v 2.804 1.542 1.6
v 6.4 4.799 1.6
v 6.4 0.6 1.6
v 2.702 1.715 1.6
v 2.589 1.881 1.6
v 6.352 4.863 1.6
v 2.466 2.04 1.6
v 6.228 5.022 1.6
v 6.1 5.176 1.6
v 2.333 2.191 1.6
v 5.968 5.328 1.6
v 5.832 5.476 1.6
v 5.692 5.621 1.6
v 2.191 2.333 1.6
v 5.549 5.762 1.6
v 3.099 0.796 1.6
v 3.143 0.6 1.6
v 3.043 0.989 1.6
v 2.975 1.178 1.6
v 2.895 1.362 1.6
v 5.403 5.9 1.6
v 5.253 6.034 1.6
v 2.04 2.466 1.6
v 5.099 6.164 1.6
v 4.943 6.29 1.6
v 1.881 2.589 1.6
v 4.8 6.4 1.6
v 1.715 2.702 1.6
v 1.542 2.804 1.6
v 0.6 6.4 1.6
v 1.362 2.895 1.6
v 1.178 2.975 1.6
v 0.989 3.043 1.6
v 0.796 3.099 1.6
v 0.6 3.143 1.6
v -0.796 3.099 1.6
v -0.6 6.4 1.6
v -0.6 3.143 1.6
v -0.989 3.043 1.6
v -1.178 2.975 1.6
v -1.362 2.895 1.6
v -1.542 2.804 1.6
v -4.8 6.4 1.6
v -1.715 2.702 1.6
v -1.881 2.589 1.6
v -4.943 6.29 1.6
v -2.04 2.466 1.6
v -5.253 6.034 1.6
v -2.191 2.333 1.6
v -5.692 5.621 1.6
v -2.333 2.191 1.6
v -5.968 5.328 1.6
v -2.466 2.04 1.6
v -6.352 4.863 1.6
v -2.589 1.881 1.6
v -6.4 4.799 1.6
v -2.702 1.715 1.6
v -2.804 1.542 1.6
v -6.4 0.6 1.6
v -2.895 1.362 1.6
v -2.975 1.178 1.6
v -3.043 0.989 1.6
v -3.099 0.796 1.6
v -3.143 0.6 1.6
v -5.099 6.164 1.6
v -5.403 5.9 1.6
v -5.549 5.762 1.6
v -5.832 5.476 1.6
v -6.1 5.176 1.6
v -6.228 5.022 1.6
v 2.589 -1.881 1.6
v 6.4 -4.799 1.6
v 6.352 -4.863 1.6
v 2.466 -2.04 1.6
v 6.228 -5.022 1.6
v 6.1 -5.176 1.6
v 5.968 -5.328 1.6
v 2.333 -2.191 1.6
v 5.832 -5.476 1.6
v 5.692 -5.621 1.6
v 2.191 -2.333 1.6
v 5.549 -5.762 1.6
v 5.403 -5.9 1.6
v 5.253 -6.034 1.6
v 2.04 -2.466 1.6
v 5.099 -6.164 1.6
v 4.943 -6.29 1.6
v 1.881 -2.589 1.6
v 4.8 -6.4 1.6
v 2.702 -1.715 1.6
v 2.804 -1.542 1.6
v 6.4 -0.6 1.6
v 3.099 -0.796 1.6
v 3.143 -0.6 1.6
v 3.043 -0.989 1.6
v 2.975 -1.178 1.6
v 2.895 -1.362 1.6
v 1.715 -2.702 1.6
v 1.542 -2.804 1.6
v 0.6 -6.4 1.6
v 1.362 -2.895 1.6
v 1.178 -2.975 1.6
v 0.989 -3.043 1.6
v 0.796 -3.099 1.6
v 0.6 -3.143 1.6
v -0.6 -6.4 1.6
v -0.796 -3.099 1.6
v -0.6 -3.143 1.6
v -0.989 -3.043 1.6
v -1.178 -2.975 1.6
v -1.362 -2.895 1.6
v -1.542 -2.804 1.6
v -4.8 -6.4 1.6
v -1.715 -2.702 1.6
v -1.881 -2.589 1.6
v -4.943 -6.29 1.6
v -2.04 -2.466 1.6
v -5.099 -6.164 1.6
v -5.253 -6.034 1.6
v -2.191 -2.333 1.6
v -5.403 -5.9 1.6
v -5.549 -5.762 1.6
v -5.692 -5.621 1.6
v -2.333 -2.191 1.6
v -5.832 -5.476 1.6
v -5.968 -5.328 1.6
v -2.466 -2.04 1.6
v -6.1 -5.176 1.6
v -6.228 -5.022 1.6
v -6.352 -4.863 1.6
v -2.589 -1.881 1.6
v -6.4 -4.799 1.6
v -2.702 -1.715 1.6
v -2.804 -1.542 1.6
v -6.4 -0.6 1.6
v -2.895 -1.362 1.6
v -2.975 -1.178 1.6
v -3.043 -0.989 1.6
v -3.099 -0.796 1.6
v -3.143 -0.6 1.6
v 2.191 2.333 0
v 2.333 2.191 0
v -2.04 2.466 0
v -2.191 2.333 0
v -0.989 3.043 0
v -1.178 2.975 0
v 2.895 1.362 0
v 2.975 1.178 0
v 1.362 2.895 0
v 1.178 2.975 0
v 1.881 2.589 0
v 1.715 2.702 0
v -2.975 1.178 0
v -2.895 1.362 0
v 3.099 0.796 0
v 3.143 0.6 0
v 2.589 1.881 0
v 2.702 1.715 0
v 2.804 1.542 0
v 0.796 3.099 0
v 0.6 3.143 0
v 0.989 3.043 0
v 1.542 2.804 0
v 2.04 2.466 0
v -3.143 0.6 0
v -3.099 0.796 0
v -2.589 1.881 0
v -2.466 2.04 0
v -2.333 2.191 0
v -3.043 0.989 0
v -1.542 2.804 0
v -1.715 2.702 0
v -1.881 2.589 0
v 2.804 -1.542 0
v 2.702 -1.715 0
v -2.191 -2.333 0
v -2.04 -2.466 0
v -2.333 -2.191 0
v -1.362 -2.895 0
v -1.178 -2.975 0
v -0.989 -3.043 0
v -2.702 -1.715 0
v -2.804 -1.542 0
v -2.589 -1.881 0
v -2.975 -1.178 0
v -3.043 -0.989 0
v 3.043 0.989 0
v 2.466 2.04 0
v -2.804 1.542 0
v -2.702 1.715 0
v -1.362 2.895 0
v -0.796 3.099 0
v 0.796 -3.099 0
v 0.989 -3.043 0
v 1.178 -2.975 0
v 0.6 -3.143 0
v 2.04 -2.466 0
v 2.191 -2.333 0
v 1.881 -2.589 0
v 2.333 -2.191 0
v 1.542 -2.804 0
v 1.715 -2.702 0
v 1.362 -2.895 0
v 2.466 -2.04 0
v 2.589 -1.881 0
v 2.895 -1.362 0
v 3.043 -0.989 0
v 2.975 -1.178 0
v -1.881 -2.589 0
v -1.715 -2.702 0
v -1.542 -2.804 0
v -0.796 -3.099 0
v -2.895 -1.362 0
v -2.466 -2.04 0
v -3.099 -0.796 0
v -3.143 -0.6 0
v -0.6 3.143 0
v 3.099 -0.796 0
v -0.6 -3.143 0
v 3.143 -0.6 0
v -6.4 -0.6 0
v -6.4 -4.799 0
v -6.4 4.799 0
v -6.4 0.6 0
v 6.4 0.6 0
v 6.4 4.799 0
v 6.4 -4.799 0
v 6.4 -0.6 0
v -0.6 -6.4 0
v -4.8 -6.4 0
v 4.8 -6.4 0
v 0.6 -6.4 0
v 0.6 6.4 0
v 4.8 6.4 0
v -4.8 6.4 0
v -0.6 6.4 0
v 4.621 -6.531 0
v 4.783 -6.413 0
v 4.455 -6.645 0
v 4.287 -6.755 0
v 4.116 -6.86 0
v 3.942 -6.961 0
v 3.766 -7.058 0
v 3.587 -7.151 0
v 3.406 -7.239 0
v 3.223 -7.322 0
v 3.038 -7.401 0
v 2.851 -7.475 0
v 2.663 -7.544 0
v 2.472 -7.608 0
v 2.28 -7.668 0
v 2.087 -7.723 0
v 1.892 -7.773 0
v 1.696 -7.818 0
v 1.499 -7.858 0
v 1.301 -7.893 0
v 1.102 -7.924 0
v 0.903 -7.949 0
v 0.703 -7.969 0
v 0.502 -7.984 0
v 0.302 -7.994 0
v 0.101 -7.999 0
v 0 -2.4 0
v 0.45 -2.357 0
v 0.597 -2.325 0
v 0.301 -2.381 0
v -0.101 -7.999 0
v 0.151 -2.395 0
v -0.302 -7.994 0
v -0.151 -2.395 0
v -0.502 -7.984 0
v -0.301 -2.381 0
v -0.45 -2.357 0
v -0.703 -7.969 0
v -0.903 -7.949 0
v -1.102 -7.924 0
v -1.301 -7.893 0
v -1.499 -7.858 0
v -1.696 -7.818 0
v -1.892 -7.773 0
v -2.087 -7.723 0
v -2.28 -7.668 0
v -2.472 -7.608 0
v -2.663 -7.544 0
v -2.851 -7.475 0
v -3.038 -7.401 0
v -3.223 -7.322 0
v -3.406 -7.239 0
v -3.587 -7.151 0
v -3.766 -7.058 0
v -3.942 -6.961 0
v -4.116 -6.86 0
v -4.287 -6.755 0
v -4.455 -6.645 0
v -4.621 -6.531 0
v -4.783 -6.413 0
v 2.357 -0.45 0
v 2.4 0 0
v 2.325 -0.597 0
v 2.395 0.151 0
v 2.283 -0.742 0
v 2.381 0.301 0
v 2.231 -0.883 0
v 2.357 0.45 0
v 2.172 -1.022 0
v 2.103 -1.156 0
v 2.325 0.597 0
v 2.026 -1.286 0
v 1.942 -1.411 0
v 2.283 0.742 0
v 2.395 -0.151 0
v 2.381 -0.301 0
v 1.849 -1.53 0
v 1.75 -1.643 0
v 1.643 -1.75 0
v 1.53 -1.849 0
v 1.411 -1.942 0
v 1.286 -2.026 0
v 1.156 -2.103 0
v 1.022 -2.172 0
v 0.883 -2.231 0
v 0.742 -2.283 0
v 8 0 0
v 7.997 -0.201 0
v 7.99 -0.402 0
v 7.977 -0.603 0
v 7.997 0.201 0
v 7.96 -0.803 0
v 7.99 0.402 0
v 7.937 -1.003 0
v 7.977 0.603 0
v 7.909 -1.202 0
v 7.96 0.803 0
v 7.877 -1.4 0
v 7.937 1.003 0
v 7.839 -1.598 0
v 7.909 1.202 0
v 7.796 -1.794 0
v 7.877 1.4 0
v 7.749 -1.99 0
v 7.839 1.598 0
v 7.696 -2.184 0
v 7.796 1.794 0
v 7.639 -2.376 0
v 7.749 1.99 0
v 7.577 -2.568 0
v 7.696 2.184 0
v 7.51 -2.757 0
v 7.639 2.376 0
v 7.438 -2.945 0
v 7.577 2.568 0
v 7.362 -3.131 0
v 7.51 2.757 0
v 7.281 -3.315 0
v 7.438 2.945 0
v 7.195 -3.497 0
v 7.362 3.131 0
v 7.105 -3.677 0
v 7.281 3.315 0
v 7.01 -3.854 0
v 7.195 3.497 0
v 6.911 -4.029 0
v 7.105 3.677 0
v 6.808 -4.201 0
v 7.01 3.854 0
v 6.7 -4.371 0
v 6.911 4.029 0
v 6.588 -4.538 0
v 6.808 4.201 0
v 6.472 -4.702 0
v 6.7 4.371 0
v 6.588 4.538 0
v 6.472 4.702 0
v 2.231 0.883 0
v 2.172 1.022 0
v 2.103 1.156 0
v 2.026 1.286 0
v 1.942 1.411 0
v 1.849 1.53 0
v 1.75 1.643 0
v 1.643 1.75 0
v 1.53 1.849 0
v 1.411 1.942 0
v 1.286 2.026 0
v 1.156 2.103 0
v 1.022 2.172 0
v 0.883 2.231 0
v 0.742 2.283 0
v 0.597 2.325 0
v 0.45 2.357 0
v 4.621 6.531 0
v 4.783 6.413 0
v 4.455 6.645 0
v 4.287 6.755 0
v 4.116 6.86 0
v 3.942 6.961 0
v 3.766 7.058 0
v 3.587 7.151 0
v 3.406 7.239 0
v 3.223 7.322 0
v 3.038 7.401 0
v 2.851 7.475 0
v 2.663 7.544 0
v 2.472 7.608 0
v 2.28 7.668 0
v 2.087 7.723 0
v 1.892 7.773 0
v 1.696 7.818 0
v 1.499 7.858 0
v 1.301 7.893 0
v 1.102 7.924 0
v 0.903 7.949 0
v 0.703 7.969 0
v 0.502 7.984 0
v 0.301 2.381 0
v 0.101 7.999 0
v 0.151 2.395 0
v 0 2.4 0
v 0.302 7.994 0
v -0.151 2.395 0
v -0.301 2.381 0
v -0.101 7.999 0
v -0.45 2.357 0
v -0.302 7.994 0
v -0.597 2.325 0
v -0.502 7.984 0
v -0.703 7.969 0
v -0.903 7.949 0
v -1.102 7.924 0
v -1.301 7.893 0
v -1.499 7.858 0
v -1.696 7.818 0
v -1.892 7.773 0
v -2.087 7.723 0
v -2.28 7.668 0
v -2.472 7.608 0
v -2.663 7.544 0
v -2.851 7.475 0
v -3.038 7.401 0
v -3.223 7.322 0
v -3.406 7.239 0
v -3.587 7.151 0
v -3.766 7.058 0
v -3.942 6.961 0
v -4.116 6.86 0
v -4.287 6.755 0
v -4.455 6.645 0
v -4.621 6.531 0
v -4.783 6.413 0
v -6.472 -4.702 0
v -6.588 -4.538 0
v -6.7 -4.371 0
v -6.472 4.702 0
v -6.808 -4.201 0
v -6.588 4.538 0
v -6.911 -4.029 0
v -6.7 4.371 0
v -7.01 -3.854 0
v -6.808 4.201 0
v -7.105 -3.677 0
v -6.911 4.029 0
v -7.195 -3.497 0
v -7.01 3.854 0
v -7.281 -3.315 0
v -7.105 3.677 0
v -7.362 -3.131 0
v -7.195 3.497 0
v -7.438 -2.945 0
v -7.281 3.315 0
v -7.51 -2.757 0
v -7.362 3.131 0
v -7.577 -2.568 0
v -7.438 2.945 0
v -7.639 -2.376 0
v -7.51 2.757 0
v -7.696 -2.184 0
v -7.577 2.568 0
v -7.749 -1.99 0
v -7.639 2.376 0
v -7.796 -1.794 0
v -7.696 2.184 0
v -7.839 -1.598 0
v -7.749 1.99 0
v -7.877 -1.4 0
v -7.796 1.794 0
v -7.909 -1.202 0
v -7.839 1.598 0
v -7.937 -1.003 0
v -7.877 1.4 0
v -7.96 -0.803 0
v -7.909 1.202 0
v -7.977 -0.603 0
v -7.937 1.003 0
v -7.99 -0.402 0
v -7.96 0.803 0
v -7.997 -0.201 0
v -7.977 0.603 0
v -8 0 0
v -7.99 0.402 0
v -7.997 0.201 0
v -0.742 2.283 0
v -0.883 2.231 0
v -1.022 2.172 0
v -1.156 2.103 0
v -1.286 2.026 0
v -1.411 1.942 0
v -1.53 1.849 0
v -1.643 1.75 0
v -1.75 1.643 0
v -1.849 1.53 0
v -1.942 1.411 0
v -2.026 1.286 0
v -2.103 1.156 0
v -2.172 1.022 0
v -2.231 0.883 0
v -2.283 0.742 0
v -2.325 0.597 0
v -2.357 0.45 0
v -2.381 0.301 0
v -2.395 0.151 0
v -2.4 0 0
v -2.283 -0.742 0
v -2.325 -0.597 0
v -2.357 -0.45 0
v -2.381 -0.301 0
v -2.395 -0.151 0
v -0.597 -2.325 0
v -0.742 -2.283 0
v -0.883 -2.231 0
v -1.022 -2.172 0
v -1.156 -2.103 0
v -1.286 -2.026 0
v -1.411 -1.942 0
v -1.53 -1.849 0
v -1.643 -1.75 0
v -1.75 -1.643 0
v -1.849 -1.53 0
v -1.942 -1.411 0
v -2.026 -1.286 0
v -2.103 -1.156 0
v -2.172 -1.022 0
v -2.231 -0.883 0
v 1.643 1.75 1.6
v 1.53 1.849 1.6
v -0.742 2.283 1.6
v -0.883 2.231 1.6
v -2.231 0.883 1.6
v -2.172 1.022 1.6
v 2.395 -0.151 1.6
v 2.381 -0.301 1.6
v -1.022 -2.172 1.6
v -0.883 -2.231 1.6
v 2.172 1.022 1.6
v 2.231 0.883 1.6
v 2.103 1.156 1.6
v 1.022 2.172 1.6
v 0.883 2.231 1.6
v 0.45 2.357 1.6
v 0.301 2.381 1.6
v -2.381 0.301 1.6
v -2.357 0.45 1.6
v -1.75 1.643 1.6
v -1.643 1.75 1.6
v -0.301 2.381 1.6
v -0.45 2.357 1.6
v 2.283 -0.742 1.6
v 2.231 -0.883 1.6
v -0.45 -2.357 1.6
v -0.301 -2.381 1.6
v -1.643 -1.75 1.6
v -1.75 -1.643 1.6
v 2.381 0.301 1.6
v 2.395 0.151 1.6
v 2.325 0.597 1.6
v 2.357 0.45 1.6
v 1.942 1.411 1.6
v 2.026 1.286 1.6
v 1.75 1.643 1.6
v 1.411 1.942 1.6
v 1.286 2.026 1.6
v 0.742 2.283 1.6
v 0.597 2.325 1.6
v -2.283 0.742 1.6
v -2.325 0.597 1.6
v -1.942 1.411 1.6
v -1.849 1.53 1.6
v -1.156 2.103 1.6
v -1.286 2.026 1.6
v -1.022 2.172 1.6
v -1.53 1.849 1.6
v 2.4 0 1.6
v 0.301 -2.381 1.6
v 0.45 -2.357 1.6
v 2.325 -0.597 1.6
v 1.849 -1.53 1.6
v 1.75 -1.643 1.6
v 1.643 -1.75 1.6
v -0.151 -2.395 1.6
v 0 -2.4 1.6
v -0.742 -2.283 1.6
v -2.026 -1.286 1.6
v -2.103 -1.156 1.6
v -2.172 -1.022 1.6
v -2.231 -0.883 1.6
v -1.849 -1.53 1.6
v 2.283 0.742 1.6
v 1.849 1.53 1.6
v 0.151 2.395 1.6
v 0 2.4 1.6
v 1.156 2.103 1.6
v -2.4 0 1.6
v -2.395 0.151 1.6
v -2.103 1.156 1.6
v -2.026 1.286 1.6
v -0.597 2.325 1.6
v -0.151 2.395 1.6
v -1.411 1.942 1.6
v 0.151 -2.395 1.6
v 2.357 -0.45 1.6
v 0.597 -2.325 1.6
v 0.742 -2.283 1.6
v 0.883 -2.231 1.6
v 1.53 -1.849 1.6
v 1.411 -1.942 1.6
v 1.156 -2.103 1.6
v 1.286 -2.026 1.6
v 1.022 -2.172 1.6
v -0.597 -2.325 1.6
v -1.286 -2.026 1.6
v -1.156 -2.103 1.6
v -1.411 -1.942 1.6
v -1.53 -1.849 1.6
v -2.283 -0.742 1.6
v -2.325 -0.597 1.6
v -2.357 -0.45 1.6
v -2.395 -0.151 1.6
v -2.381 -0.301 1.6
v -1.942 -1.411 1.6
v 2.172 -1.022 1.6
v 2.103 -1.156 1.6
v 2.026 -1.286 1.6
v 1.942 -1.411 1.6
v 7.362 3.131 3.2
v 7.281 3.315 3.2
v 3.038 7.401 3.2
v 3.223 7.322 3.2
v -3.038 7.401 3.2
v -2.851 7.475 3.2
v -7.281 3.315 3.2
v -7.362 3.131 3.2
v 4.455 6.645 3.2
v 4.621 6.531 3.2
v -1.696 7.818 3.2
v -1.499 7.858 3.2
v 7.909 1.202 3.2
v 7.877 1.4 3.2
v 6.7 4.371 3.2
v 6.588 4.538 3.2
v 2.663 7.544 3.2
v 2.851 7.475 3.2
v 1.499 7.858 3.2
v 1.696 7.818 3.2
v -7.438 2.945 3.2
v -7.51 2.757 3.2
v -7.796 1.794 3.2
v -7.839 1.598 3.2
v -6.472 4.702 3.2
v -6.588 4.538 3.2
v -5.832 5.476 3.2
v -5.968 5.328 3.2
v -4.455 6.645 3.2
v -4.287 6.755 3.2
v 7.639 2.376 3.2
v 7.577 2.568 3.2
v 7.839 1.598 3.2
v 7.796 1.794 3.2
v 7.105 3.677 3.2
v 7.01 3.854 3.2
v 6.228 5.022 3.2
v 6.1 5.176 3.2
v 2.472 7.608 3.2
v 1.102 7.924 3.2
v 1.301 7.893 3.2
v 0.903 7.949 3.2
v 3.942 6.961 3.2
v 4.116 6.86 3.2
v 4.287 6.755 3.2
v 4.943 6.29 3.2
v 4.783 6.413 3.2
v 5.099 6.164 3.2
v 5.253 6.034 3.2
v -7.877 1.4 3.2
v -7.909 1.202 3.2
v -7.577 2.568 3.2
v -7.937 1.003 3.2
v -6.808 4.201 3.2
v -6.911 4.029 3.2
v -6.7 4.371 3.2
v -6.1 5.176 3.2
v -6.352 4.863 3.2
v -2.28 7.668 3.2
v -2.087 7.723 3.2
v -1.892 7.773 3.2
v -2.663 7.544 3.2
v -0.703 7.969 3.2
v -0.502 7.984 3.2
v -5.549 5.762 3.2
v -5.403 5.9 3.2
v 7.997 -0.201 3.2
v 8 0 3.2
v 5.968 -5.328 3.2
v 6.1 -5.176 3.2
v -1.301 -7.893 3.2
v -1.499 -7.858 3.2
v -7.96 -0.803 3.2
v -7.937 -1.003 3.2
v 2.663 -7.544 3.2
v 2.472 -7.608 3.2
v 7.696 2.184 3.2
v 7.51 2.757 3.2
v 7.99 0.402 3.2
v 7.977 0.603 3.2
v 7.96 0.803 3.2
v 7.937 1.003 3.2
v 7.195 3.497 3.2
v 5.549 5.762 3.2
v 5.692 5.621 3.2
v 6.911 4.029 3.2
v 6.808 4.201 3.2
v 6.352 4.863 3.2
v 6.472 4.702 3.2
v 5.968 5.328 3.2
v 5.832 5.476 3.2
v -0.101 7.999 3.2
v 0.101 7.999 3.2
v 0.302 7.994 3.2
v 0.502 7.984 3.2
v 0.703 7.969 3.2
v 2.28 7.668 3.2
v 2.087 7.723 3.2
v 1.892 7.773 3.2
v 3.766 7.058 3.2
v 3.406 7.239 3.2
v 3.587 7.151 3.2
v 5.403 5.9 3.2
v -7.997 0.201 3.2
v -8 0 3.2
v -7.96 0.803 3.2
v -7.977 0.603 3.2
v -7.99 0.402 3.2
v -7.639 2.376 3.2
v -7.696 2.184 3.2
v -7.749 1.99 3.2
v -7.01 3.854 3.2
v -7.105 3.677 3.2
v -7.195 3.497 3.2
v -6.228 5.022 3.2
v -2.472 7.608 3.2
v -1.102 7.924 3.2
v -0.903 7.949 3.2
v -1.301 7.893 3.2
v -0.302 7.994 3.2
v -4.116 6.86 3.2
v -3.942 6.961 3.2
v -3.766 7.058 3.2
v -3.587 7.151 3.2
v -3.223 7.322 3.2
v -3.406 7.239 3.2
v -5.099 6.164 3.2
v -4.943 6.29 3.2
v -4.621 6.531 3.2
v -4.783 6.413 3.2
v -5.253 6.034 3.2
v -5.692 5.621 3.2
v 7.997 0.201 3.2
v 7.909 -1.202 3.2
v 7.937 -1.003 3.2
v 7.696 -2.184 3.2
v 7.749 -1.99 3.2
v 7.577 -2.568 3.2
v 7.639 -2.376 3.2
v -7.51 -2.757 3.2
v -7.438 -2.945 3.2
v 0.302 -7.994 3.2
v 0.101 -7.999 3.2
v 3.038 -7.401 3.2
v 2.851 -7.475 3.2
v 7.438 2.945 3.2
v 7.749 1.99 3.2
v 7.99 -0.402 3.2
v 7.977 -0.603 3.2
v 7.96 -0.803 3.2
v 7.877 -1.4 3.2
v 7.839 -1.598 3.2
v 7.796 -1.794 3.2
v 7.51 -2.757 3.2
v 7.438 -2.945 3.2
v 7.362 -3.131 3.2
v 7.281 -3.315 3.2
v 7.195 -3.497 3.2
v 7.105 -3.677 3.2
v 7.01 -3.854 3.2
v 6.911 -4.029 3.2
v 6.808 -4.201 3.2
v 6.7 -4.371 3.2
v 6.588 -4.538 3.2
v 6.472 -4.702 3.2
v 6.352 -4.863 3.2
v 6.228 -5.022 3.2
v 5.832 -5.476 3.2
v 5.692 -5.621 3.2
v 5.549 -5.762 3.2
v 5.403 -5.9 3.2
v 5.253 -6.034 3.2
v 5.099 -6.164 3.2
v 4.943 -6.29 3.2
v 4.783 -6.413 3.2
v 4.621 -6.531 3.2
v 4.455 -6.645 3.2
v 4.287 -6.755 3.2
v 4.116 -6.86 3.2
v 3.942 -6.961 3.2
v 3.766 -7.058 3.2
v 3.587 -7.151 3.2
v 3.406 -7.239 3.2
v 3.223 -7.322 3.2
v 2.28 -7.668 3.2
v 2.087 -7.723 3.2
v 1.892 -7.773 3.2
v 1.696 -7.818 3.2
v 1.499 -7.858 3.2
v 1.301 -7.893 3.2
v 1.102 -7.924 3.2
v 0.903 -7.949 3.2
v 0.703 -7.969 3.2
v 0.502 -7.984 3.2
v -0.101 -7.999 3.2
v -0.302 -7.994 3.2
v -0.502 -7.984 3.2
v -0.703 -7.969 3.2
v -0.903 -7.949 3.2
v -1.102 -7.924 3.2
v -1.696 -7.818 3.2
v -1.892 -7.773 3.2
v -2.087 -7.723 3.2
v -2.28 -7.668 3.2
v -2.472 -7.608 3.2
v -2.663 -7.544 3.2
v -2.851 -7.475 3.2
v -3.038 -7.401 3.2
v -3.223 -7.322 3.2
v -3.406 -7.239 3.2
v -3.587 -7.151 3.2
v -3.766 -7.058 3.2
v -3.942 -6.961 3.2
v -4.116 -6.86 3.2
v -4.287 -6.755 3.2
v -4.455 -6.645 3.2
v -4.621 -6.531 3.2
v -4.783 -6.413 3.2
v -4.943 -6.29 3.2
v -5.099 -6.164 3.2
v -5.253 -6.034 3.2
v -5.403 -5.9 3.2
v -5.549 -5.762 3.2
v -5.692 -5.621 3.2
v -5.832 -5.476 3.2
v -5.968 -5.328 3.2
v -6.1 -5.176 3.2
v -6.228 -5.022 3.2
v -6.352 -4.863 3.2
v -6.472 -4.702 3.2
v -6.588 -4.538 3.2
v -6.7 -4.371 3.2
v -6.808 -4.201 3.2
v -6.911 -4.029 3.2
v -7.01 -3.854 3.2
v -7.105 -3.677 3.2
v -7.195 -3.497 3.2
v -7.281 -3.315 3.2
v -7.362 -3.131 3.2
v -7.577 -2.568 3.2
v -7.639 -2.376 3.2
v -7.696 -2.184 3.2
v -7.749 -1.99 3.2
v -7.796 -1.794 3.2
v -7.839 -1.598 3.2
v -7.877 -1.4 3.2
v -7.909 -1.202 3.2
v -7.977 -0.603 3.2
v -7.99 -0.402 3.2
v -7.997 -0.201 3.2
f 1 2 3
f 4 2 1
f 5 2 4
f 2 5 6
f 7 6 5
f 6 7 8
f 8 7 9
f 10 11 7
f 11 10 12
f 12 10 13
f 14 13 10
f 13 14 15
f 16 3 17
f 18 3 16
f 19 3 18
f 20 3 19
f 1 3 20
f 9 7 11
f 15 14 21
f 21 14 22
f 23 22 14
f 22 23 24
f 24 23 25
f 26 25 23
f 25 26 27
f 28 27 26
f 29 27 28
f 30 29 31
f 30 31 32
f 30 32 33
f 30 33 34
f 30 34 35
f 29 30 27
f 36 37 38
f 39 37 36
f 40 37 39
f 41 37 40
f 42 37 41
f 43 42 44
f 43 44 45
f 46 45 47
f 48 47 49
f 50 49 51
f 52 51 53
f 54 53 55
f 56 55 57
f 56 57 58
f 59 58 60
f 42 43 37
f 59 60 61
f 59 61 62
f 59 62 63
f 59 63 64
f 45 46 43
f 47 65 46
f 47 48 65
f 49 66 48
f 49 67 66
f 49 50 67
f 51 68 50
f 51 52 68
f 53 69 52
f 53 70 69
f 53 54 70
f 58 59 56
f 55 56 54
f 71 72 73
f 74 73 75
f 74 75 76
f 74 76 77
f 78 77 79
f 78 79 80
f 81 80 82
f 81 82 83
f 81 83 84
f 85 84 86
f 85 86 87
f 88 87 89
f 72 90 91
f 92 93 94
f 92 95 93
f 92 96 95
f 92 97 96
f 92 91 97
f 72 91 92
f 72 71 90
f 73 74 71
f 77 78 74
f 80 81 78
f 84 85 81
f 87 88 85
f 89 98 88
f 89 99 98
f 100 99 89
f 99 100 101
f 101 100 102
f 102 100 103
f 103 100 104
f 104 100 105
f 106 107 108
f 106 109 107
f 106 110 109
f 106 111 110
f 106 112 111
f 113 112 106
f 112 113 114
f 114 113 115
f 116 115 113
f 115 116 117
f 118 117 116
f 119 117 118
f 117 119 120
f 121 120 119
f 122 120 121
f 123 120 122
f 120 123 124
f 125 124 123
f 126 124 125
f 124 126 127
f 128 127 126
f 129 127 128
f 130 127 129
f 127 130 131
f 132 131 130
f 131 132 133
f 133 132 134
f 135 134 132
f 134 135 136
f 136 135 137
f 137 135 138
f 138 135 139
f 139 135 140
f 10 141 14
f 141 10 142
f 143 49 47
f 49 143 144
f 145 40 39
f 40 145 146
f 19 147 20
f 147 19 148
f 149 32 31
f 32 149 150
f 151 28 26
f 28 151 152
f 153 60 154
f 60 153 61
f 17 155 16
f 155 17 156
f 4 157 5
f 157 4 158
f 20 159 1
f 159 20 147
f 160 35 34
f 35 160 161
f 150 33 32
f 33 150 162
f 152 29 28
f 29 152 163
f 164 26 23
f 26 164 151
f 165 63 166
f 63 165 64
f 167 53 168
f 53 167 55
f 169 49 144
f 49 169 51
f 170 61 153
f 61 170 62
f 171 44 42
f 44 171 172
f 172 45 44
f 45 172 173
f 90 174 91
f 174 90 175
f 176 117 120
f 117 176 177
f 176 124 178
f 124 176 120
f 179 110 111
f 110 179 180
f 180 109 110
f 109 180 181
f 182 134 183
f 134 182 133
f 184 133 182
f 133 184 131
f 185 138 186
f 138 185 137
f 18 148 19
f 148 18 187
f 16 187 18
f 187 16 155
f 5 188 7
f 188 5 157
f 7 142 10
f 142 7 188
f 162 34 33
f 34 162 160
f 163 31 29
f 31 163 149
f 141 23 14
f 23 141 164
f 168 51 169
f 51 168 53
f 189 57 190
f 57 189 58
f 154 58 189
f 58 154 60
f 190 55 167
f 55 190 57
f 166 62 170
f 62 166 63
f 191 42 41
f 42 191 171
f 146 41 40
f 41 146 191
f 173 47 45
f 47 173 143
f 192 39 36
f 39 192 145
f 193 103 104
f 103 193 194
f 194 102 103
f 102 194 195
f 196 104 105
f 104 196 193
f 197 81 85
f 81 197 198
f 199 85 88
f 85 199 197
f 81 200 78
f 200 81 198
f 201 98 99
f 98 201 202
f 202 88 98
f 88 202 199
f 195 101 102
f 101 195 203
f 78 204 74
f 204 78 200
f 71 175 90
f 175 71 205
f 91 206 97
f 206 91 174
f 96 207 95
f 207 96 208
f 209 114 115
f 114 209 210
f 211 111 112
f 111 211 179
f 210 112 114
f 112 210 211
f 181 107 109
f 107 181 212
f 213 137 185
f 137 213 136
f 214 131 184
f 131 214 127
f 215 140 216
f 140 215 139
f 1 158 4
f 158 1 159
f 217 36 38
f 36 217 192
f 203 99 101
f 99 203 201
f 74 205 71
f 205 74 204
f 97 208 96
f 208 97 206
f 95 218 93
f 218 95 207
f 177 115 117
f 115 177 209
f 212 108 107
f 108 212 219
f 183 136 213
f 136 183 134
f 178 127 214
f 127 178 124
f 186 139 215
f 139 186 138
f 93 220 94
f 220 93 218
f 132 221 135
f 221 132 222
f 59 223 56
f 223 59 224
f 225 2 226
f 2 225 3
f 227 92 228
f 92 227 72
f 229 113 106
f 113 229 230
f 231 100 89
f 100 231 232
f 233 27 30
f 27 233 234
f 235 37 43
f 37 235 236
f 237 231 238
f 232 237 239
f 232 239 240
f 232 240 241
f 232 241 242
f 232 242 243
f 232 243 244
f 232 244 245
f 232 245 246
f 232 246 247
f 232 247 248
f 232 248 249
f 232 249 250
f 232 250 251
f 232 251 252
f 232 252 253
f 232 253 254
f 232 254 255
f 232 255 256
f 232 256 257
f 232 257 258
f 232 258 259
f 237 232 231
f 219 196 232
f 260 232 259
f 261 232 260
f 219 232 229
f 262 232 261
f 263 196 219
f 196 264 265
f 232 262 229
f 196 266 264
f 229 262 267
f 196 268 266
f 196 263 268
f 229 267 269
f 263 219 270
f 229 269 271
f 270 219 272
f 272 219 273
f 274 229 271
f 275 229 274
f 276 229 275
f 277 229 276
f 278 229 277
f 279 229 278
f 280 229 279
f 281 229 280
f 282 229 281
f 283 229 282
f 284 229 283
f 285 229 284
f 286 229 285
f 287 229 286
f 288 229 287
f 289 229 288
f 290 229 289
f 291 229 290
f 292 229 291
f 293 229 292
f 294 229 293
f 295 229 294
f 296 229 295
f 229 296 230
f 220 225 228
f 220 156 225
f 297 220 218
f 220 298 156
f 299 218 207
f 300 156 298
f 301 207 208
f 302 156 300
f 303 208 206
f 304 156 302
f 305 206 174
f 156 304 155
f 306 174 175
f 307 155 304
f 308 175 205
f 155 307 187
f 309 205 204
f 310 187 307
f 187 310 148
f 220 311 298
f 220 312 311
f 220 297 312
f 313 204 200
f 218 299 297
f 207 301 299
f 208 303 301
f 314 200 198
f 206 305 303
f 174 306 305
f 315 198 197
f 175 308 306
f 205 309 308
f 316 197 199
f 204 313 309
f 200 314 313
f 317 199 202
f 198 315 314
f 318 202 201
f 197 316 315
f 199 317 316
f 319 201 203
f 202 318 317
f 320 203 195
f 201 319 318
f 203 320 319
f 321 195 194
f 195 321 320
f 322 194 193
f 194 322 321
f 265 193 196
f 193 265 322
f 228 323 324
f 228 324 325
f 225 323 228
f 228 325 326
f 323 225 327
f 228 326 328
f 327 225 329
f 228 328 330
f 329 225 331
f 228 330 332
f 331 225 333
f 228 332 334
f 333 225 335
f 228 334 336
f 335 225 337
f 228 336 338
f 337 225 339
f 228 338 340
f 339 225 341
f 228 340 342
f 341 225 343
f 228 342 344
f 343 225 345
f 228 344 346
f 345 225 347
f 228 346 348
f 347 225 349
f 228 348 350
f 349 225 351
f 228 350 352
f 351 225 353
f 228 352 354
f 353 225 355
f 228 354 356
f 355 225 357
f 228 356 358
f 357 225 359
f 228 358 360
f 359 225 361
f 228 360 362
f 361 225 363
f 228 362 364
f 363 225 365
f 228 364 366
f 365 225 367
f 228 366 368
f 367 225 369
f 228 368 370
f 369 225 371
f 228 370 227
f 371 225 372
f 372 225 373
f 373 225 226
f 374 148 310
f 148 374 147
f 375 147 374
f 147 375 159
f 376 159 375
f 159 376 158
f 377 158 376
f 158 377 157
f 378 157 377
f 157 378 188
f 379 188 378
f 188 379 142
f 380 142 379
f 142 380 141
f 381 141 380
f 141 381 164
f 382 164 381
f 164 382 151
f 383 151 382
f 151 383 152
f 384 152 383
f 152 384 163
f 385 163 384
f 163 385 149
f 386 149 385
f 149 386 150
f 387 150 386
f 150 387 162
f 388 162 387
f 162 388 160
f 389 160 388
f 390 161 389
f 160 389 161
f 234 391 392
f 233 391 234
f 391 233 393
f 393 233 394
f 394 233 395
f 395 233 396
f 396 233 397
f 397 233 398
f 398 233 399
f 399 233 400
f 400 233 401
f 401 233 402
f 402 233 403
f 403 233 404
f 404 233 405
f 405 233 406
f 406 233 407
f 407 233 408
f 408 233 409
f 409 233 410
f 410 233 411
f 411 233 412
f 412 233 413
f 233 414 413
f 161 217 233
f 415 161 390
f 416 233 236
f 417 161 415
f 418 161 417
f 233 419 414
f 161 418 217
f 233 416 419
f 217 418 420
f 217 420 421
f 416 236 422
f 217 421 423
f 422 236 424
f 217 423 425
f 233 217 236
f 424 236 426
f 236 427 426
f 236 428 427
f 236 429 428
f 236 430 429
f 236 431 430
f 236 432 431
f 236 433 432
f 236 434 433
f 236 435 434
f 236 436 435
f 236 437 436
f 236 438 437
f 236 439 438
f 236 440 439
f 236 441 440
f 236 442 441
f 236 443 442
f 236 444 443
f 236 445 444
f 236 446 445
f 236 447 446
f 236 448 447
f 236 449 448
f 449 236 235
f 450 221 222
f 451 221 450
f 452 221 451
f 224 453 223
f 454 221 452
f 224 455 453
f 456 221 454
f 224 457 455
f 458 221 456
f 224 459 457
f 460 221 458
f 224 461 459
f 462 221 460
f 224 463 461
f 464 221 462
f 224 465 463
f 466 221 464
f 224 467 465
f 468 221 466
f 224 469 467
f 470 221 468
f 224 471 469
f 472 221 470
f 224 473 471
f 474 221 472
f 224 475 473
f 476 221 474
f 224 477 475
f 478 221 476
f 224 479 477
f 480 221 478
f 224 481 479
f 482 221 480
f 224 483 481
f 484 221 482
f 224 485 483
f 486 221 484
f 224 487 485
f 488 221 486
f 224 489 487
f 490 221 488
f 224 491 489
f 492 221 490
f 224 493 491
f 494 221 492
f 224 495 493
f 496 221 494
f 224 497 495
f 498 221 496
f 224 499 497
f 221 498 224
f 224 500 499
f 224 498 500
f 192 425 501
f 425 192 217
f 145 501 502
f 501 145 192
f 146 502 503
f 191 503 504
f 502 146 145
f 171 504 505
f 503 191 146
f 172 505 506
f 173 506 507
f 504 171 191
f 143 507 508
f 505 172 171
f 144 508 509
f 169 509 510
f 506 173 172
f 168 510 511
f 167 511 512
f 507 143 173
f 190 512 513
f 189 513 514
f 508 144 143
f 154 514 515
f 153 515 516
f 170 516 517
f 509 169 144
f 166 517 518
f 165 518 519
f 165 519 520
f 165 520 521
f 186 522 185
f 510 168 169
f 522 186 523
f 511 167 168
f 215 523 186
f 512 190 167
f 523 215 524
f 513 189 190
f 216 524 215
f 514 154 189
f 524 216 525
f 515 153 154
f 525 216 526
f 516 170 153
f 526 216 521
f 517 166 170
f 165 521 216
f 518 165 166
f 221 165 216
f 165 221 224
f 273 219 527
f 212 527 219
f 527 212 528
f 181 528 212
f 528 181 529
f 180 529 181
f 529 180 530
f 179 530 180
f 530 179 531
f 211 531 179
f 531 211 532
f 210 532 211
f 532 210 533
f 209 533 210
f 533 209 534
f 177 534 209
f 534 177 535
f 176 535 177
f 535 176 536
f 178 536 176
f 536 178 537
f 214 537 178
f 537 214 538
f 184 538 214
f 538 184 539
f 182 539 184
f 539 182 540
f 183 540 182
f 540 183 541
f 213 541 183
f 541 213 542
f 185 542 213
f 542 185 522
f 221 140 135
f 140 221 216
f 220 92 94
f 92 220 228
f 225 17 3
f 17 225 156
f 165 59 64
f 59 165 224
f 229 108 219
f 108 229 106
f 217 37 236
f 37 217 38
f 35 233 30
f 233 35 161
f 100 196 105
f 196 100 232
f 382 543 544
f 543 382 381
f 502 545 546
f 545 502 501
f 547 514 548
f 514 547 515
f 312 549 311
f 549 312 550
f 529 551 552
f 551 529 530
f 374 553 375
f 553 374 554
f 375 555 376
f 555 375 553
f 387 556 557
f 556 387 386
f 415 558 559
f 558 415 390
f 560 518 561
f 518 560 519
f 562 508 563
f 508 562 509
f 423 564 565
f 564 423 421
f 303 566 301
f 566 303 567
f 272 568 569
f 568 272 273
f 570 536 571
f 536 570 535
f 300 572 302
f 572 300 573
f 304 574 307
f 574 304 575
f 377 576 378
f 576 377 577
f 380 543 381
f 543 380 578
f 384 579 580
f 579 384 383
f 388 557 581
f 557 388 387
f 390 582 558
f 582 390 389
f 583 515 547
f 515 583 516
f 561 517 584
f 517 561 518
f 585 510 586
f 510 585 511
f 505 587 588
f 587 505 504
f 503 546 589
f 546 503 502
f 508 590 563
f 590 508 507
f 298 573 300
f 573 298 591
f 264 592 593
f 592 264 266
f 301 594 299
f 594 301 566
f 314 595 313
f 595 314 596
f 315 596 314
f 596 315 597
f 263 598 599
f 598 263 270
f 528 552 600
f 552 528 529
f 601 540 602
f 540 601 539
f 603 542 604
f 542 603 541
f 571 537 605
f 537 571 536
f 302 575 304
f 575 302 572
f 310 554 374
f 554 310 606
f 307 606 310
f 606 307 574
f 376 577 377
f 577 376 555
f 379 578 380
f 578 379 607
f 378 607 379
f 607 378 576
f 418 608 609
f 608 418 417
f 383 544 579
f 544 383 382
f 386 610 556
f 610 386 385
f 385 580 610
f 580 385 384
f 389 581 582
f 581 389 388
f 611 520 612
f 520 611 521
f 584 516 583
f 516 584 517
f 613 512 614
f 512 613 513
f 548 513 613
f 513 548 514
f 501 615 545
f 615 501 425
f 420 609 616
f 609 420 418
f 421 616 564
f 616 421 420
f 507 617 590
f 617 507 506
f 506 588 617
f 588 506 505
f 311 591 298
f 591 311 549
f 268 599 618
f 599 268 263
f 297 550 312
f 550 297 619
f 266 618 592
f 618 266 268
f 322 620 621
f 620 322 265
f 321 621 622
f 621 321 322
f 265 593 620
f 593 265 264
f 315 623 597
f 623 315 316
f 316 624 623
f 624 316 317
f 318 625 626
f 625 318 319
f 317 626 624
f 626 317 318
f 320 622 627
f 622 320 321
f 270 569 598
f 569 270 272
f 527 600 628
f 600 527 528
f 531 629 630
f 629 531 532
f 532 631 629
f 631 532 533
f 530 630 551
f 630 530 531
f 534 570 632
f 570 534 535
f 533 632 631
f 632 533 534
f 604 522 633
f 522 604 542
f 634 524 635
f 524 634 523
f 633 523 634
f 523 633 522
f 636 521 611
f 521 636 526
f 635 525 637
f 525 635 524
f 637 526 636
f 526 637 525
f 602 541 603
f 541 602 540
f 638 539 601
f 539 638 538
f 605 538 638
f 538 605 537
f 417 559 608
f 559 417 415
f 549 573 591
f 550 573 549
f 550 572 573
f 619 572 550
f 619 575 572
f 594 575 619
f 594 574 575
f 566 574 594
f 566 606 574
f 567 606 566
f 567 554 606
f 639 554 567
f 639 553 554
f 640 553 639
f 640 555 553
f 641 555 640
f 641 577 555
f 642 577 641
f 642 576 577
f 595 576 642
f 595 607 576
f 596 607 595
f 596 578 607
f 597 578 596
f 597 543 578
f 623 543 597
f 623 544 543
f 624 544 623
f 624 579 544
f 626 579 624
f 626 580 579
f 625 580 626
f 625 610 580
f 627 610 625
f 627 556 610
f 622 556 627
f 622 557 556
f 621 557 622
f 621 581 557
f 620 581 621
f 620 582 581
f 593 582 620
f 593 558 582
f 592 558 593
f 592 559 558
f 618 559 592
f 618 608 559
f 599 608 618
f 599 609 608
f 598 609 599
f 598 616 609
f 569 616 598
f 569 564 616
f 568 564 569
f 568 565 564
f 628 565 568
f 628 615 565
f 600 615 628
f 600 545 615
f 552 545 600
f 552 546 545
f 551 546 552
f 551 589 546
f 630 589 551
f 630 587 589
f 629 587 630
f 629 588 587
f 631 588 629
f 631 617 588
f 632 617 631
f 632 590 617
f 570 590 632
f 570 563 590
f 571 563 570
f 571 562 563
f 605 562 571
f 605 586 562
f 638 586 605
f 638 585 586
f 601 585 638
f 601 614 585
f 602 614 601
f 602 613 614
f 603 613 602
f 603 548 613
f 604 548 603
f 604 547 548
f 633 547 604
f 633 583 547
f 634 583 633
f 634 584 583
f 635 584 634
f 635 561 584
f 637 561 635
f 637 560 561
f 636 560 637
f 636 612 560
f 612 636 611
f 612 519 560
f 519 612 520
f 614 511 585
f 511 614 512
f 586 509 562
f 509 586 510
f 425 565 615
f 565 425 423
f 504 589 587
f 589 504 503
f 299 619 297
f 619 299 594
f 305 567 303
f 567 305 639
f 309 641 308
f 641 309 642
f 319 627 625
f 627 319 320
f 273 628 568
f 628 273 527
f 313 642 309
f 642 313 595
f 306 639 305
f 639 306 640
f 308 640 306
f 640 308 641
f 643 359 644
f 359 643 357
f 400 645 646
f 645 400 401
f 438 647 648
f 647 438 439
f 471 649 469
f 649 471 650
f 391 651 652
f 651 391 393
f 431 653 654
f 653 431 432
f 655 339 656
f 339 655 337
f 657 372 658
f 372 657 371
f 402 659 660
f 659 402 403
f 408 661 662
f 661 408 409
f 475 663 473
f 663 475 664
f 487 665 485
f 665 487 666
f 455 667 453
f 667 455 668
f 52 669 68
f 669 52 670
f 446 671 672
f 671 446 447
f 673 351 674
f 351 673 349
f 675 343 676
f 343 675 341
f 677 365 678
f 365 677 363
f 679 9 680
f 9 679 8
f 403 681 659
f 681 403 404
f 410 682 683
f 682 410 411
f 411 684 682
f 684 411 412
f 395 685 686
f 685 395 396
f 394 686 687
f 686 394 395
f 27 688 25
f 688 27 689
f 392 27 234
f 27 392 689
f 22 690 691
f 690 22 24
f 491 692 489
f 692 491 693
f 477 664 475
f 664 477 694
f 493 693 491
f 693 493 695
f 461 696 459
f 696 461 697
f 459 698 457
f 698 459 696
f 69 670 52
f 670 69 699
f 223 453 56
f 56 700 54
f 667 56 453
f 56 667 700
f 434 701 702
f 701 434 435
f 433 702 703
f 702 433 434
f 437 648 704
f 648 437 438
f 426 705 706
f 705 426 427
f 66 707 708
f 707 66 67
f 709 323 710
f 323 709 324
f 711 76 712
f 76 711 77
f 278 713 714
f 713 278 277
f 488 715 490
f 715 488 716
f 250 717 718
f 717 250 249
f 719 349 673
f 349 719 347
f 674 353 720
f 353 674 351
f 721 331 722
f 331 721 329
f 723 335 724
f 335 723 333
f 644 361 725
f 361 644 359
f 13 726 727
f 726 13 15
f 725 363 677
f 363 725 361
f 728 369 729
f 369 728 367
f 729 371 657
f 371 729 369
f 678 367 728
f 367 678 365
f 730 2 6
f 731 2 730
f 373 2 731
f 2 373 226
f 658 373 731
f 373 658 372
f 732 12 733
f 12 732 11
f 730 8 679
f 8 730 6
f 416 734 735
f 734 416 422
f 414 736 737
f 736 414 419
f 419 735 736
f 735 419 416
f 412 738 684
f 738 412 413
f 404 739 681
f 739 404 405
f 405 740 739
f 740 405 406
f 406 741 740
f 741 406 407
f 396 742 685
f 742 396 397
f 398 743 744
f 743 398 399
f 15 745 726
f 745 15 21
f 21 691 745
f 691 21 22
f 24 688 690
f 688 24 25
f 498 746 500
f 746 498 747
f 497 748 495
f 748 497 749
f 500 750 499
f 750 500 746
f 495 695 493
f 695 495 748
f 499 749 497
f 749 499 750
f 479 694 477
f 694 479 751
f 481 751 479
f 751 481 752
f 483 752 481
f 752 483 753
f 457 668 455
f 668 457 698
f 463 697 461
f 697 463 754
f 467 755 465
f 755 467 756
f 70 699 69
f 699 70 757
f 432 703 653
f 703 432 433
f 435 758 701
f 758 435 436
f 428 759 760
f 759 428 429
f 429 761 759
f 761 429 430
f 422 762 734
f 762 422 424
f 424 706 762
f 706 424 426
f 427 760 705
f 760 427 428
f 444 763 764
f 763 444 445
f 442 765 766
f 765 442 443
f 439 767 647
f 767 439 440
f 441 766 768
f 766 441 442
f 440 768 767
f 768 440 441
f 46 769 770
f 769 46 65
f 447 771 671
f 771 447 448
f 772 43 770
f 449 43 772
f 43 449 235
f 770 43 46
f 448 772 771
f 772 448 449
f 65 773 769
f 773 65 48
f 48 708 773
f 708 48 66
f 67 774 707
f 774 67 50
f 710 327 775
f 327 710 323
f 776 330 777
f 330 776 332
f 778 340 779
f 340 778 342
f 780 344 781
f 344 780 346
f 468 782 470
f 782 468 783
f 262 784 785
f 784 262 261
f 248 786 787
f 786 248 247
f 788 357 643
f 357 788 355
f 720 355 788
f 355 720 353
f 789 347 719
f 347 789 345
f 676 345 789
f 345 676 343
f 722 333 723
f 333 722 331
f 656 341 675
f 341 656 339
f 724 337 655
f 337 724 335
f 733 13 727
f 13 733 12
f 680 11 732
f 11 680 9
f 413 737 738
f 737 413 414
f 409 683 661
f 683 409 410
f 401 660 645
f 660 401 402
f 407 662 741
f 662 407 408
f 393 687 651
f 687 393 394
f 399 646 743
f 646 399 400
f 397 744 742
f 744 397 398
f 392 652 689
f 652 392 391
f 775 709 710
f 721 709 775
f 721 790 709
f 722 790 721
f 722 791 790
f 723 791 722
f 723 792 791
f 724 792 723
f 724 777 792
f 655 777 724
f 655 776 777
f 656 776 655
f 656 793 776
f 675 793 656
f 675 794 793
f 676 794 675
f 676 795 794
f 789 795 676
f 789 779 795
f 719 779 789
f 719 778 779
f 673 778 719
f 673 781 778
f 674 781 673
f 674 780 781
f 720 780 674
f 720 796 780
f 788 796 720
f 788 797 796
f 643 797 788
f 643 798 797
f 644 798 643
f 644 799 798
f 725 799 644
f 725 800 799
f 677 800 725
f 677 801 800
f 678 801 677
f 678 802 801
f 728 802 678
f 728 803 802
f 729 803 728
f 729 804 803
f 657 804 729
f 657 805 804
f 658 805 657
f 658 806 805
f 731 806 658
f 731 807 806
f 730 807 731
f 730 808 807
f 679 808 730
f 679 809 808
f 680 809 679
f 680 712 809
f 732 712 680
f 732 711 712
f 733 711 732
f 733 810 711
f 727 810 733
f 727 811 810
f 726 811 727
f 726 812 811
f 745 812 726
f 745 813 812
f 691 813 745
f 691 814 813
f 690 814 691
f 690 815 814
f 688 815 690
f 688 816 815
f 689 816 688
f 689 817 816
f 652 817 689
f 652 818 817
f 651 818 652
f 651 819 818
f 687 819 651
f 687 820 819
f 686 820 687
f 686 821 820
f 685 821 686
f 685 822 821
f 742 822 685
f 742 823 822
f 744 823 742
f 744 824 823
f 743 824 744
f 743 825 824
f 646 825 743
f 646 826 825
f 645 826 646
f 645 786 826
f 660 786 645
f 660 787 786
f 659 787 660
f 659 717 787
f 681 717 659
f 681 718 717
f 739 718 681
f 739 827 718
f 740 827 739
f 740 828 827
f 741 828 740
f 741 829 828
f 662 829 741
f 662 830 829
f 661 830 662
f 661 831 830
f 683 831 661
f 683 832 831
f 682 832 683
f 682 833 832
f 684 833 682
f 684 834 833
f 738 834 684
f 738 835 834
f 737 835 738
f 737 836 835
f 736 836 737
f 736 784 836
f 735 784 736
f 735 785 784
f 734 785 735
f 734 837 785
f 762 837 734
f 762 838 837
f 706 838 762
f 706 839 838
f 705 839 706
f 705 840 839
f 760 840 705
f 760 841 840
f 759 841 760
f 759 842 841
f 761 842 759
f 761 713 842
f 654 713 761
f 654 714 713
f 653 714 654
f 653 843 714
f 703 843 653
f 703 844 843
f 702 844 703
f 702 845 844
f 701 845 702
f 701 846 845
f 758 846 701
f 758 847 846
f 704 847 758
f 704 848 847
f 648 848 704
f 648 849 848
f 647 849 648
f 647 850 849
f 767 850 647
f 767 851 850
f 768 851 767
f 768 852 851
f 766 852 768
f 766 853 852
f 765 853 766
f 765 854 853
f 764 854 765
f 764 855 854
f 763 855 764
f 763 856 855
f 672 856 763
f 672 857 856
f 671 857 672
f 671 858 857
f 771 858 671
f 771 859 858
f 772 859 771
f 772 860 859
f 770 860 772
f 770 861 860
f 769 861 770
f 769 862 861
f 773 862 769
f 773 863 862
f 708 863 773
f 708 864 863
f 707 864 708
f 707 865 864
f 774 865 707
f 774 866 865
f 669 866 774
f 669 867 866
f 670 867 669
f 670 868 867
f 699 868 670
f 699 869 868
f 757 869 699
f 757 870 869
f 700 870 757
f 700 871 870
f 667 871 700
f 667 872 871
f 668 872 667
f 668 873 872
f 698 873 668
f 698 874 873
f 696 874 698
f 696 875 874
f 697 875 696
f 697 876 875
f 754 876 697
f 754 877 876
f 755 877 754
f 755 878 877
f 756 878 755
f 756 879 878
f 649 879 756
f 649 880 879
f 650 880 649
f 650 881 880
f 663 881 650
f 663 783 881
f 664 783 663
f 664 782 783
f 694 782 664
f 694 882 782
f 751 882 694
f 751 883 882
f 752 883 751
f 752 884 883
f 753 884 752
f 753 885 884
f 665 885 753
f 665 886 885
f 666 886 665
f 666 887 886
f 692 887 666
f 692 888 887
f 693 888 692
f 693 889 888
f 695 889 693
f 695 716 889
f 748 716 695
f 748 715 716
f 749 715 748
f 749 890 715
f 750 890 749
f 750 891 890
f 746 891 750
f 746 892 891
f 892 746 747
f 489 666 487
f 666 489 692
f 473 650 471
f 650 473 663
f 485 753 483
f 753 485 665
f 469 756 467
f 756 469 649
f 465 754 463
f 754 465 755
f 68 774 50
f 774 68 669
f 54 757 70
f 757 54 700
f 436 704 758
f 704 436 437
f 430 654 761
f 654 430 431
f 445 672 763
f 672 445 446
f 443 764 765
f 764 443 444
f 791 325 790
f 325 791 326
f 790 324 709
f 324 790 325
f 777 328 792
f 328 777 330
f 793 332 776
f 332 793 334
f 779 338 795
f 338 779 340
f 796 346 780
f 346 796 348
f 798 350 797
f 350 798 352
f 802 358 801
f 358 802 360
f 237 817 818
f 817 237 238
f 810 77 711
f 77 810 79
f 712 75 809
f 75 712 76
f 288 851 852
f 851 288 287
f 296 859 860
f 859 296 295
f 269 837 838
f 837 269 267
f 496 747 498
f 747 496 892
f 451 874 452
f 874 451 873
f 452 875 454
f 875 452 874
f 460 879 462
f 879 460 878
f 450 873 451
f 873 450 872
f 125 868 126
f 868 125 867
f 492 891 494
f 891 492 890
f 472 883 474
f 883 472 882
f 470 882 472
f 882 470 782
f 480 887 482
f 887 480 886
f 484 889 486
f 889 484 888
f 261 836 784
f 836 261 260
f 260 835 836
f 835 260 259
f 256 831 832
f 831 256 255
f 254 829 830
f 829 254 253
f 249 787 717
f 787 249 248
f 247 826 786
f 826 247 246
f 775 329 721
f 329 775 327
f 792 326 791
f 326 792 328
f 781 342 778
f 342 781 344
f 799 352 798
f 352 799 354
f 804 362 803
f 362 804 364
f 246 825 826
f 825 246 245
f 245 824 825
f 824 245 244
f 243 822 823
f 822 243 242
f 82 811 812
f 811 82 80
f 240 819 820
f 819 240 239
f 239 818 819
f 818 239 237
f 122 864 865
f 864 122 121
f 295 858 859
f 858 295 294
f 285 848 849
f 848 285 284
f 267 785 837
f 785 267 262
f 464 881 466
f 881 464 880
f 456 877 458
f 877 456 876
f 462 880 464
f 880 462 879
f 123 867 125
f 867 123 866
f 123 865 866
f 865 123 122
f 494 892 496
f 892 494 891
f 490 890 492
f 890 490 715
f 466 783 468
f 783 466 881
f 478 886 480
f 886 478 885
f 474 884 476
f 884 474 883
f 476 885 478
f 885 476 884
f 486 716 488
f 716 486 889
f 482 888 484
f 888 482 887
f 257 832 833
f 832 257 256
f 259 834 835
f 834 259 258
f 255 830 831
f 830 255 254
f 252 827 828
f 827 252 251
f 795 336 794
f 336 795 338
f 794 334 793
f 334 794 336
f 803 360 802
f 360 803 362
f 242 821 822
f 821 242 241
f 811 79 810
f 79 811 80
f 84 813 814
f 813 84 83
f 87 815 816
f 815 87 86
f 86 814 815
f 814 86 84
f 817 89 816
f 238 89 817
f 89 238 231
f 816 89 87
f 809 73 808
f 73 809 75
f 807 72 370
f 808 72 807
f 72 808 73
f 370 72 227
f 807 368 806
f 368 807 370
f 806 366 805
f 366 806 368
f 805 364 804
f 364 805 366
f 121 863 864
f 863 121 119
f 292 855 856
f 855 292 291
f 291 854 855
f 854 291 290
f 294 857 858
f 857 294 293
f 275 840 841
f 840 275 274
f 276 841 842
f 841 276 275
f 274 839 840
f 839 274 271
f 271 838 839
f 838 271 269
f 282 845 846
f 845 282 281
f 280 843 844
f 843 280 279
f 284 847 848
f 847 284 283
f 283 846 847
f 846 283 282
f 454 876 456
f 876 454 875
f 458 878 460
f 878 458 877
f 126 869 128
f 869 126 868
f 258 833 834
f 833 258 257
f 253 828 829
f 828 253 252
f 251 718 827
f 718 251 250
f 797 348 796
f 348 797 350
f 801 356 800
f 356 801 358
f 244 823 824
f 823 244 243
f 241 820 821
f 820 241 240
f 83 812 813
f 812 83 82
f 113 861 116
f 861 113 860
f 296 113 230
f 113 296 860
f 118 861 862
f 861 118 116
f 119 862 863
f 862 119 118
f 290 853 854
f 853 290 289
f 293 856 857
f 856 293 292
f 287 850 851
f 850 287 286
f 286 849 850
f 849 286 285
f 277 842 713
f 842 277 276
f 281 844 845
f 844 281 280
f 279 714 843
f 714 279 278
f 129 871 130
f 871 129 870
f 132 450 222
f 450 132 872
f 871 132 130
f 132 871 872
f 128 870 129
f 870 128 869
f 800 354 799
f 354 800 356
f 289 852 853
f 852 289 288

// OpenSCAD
eps = 0.001;

modelScale = 1.0;


addInnerWalls = true;



pitch = 8.0*modelScale;


ho1 = 3.2*modelScale; // height
ho2 = 1.6*modelScale;
ro1 = 8.0*modelScale;
hi1 = 1.6*modelScale;
hi2 = 1.6*modelScale;
ri1 = 6.4*modelScale;
ri2 = 3.2*modelScale;
ri3 = 2.4*modelScale;



tInnerWall = 1.2*modelScale;
lInnerWall = 2*ri1;




module drawTile()
{
    difference()
	{
        union()
        {
            cylinder(ho1,ro1,ro1,$fn=250*modelScale);            
        }
        union()
        {
            translate([0,0,-eps]) cylinder(hi2+eps,ri3,ri3,$fn=100*modelScale);
            difference()
            {
                translate([0,0,-eps]) cylinder(hi1+eps,ri1,ri1,$fn=250*modelScale);
                translate([0,0,-2*eps]) cylinder(hi1+2*eps,ri2,ri2,$fn=100*modelScale);                
            }
            difference()
            {
                translate([-ri1,-ri1,-eps]) cube([2*ri1,2*ri1,ho2+eps]);
                translate([0,0,-2*eps]) cylinder(ho2+2*eps,ri2,ri2,$fn=100*modelScale);                
            }            
        }
    }
    
    if (addInnerWalls)
    {
        difference()
        {
            union()
            {        
                translate([-lInnerWall/2,-tInnerWall/2,0]) cube([lInnerWall,tInnerWall,hi1+eps]);
                translate([-tInnerWall/2,-lInnerWall/2,0]) cube([tInnerWall,lInnerWall,hi1+eps]);
            }
            union()
            {
                translate([0,0,-eps]) cylinder(hi1+3*eps,ri2,ri2,$fn=100*modelScale);
            }
        }
    }    
}



// test


// parts
drawTile();
